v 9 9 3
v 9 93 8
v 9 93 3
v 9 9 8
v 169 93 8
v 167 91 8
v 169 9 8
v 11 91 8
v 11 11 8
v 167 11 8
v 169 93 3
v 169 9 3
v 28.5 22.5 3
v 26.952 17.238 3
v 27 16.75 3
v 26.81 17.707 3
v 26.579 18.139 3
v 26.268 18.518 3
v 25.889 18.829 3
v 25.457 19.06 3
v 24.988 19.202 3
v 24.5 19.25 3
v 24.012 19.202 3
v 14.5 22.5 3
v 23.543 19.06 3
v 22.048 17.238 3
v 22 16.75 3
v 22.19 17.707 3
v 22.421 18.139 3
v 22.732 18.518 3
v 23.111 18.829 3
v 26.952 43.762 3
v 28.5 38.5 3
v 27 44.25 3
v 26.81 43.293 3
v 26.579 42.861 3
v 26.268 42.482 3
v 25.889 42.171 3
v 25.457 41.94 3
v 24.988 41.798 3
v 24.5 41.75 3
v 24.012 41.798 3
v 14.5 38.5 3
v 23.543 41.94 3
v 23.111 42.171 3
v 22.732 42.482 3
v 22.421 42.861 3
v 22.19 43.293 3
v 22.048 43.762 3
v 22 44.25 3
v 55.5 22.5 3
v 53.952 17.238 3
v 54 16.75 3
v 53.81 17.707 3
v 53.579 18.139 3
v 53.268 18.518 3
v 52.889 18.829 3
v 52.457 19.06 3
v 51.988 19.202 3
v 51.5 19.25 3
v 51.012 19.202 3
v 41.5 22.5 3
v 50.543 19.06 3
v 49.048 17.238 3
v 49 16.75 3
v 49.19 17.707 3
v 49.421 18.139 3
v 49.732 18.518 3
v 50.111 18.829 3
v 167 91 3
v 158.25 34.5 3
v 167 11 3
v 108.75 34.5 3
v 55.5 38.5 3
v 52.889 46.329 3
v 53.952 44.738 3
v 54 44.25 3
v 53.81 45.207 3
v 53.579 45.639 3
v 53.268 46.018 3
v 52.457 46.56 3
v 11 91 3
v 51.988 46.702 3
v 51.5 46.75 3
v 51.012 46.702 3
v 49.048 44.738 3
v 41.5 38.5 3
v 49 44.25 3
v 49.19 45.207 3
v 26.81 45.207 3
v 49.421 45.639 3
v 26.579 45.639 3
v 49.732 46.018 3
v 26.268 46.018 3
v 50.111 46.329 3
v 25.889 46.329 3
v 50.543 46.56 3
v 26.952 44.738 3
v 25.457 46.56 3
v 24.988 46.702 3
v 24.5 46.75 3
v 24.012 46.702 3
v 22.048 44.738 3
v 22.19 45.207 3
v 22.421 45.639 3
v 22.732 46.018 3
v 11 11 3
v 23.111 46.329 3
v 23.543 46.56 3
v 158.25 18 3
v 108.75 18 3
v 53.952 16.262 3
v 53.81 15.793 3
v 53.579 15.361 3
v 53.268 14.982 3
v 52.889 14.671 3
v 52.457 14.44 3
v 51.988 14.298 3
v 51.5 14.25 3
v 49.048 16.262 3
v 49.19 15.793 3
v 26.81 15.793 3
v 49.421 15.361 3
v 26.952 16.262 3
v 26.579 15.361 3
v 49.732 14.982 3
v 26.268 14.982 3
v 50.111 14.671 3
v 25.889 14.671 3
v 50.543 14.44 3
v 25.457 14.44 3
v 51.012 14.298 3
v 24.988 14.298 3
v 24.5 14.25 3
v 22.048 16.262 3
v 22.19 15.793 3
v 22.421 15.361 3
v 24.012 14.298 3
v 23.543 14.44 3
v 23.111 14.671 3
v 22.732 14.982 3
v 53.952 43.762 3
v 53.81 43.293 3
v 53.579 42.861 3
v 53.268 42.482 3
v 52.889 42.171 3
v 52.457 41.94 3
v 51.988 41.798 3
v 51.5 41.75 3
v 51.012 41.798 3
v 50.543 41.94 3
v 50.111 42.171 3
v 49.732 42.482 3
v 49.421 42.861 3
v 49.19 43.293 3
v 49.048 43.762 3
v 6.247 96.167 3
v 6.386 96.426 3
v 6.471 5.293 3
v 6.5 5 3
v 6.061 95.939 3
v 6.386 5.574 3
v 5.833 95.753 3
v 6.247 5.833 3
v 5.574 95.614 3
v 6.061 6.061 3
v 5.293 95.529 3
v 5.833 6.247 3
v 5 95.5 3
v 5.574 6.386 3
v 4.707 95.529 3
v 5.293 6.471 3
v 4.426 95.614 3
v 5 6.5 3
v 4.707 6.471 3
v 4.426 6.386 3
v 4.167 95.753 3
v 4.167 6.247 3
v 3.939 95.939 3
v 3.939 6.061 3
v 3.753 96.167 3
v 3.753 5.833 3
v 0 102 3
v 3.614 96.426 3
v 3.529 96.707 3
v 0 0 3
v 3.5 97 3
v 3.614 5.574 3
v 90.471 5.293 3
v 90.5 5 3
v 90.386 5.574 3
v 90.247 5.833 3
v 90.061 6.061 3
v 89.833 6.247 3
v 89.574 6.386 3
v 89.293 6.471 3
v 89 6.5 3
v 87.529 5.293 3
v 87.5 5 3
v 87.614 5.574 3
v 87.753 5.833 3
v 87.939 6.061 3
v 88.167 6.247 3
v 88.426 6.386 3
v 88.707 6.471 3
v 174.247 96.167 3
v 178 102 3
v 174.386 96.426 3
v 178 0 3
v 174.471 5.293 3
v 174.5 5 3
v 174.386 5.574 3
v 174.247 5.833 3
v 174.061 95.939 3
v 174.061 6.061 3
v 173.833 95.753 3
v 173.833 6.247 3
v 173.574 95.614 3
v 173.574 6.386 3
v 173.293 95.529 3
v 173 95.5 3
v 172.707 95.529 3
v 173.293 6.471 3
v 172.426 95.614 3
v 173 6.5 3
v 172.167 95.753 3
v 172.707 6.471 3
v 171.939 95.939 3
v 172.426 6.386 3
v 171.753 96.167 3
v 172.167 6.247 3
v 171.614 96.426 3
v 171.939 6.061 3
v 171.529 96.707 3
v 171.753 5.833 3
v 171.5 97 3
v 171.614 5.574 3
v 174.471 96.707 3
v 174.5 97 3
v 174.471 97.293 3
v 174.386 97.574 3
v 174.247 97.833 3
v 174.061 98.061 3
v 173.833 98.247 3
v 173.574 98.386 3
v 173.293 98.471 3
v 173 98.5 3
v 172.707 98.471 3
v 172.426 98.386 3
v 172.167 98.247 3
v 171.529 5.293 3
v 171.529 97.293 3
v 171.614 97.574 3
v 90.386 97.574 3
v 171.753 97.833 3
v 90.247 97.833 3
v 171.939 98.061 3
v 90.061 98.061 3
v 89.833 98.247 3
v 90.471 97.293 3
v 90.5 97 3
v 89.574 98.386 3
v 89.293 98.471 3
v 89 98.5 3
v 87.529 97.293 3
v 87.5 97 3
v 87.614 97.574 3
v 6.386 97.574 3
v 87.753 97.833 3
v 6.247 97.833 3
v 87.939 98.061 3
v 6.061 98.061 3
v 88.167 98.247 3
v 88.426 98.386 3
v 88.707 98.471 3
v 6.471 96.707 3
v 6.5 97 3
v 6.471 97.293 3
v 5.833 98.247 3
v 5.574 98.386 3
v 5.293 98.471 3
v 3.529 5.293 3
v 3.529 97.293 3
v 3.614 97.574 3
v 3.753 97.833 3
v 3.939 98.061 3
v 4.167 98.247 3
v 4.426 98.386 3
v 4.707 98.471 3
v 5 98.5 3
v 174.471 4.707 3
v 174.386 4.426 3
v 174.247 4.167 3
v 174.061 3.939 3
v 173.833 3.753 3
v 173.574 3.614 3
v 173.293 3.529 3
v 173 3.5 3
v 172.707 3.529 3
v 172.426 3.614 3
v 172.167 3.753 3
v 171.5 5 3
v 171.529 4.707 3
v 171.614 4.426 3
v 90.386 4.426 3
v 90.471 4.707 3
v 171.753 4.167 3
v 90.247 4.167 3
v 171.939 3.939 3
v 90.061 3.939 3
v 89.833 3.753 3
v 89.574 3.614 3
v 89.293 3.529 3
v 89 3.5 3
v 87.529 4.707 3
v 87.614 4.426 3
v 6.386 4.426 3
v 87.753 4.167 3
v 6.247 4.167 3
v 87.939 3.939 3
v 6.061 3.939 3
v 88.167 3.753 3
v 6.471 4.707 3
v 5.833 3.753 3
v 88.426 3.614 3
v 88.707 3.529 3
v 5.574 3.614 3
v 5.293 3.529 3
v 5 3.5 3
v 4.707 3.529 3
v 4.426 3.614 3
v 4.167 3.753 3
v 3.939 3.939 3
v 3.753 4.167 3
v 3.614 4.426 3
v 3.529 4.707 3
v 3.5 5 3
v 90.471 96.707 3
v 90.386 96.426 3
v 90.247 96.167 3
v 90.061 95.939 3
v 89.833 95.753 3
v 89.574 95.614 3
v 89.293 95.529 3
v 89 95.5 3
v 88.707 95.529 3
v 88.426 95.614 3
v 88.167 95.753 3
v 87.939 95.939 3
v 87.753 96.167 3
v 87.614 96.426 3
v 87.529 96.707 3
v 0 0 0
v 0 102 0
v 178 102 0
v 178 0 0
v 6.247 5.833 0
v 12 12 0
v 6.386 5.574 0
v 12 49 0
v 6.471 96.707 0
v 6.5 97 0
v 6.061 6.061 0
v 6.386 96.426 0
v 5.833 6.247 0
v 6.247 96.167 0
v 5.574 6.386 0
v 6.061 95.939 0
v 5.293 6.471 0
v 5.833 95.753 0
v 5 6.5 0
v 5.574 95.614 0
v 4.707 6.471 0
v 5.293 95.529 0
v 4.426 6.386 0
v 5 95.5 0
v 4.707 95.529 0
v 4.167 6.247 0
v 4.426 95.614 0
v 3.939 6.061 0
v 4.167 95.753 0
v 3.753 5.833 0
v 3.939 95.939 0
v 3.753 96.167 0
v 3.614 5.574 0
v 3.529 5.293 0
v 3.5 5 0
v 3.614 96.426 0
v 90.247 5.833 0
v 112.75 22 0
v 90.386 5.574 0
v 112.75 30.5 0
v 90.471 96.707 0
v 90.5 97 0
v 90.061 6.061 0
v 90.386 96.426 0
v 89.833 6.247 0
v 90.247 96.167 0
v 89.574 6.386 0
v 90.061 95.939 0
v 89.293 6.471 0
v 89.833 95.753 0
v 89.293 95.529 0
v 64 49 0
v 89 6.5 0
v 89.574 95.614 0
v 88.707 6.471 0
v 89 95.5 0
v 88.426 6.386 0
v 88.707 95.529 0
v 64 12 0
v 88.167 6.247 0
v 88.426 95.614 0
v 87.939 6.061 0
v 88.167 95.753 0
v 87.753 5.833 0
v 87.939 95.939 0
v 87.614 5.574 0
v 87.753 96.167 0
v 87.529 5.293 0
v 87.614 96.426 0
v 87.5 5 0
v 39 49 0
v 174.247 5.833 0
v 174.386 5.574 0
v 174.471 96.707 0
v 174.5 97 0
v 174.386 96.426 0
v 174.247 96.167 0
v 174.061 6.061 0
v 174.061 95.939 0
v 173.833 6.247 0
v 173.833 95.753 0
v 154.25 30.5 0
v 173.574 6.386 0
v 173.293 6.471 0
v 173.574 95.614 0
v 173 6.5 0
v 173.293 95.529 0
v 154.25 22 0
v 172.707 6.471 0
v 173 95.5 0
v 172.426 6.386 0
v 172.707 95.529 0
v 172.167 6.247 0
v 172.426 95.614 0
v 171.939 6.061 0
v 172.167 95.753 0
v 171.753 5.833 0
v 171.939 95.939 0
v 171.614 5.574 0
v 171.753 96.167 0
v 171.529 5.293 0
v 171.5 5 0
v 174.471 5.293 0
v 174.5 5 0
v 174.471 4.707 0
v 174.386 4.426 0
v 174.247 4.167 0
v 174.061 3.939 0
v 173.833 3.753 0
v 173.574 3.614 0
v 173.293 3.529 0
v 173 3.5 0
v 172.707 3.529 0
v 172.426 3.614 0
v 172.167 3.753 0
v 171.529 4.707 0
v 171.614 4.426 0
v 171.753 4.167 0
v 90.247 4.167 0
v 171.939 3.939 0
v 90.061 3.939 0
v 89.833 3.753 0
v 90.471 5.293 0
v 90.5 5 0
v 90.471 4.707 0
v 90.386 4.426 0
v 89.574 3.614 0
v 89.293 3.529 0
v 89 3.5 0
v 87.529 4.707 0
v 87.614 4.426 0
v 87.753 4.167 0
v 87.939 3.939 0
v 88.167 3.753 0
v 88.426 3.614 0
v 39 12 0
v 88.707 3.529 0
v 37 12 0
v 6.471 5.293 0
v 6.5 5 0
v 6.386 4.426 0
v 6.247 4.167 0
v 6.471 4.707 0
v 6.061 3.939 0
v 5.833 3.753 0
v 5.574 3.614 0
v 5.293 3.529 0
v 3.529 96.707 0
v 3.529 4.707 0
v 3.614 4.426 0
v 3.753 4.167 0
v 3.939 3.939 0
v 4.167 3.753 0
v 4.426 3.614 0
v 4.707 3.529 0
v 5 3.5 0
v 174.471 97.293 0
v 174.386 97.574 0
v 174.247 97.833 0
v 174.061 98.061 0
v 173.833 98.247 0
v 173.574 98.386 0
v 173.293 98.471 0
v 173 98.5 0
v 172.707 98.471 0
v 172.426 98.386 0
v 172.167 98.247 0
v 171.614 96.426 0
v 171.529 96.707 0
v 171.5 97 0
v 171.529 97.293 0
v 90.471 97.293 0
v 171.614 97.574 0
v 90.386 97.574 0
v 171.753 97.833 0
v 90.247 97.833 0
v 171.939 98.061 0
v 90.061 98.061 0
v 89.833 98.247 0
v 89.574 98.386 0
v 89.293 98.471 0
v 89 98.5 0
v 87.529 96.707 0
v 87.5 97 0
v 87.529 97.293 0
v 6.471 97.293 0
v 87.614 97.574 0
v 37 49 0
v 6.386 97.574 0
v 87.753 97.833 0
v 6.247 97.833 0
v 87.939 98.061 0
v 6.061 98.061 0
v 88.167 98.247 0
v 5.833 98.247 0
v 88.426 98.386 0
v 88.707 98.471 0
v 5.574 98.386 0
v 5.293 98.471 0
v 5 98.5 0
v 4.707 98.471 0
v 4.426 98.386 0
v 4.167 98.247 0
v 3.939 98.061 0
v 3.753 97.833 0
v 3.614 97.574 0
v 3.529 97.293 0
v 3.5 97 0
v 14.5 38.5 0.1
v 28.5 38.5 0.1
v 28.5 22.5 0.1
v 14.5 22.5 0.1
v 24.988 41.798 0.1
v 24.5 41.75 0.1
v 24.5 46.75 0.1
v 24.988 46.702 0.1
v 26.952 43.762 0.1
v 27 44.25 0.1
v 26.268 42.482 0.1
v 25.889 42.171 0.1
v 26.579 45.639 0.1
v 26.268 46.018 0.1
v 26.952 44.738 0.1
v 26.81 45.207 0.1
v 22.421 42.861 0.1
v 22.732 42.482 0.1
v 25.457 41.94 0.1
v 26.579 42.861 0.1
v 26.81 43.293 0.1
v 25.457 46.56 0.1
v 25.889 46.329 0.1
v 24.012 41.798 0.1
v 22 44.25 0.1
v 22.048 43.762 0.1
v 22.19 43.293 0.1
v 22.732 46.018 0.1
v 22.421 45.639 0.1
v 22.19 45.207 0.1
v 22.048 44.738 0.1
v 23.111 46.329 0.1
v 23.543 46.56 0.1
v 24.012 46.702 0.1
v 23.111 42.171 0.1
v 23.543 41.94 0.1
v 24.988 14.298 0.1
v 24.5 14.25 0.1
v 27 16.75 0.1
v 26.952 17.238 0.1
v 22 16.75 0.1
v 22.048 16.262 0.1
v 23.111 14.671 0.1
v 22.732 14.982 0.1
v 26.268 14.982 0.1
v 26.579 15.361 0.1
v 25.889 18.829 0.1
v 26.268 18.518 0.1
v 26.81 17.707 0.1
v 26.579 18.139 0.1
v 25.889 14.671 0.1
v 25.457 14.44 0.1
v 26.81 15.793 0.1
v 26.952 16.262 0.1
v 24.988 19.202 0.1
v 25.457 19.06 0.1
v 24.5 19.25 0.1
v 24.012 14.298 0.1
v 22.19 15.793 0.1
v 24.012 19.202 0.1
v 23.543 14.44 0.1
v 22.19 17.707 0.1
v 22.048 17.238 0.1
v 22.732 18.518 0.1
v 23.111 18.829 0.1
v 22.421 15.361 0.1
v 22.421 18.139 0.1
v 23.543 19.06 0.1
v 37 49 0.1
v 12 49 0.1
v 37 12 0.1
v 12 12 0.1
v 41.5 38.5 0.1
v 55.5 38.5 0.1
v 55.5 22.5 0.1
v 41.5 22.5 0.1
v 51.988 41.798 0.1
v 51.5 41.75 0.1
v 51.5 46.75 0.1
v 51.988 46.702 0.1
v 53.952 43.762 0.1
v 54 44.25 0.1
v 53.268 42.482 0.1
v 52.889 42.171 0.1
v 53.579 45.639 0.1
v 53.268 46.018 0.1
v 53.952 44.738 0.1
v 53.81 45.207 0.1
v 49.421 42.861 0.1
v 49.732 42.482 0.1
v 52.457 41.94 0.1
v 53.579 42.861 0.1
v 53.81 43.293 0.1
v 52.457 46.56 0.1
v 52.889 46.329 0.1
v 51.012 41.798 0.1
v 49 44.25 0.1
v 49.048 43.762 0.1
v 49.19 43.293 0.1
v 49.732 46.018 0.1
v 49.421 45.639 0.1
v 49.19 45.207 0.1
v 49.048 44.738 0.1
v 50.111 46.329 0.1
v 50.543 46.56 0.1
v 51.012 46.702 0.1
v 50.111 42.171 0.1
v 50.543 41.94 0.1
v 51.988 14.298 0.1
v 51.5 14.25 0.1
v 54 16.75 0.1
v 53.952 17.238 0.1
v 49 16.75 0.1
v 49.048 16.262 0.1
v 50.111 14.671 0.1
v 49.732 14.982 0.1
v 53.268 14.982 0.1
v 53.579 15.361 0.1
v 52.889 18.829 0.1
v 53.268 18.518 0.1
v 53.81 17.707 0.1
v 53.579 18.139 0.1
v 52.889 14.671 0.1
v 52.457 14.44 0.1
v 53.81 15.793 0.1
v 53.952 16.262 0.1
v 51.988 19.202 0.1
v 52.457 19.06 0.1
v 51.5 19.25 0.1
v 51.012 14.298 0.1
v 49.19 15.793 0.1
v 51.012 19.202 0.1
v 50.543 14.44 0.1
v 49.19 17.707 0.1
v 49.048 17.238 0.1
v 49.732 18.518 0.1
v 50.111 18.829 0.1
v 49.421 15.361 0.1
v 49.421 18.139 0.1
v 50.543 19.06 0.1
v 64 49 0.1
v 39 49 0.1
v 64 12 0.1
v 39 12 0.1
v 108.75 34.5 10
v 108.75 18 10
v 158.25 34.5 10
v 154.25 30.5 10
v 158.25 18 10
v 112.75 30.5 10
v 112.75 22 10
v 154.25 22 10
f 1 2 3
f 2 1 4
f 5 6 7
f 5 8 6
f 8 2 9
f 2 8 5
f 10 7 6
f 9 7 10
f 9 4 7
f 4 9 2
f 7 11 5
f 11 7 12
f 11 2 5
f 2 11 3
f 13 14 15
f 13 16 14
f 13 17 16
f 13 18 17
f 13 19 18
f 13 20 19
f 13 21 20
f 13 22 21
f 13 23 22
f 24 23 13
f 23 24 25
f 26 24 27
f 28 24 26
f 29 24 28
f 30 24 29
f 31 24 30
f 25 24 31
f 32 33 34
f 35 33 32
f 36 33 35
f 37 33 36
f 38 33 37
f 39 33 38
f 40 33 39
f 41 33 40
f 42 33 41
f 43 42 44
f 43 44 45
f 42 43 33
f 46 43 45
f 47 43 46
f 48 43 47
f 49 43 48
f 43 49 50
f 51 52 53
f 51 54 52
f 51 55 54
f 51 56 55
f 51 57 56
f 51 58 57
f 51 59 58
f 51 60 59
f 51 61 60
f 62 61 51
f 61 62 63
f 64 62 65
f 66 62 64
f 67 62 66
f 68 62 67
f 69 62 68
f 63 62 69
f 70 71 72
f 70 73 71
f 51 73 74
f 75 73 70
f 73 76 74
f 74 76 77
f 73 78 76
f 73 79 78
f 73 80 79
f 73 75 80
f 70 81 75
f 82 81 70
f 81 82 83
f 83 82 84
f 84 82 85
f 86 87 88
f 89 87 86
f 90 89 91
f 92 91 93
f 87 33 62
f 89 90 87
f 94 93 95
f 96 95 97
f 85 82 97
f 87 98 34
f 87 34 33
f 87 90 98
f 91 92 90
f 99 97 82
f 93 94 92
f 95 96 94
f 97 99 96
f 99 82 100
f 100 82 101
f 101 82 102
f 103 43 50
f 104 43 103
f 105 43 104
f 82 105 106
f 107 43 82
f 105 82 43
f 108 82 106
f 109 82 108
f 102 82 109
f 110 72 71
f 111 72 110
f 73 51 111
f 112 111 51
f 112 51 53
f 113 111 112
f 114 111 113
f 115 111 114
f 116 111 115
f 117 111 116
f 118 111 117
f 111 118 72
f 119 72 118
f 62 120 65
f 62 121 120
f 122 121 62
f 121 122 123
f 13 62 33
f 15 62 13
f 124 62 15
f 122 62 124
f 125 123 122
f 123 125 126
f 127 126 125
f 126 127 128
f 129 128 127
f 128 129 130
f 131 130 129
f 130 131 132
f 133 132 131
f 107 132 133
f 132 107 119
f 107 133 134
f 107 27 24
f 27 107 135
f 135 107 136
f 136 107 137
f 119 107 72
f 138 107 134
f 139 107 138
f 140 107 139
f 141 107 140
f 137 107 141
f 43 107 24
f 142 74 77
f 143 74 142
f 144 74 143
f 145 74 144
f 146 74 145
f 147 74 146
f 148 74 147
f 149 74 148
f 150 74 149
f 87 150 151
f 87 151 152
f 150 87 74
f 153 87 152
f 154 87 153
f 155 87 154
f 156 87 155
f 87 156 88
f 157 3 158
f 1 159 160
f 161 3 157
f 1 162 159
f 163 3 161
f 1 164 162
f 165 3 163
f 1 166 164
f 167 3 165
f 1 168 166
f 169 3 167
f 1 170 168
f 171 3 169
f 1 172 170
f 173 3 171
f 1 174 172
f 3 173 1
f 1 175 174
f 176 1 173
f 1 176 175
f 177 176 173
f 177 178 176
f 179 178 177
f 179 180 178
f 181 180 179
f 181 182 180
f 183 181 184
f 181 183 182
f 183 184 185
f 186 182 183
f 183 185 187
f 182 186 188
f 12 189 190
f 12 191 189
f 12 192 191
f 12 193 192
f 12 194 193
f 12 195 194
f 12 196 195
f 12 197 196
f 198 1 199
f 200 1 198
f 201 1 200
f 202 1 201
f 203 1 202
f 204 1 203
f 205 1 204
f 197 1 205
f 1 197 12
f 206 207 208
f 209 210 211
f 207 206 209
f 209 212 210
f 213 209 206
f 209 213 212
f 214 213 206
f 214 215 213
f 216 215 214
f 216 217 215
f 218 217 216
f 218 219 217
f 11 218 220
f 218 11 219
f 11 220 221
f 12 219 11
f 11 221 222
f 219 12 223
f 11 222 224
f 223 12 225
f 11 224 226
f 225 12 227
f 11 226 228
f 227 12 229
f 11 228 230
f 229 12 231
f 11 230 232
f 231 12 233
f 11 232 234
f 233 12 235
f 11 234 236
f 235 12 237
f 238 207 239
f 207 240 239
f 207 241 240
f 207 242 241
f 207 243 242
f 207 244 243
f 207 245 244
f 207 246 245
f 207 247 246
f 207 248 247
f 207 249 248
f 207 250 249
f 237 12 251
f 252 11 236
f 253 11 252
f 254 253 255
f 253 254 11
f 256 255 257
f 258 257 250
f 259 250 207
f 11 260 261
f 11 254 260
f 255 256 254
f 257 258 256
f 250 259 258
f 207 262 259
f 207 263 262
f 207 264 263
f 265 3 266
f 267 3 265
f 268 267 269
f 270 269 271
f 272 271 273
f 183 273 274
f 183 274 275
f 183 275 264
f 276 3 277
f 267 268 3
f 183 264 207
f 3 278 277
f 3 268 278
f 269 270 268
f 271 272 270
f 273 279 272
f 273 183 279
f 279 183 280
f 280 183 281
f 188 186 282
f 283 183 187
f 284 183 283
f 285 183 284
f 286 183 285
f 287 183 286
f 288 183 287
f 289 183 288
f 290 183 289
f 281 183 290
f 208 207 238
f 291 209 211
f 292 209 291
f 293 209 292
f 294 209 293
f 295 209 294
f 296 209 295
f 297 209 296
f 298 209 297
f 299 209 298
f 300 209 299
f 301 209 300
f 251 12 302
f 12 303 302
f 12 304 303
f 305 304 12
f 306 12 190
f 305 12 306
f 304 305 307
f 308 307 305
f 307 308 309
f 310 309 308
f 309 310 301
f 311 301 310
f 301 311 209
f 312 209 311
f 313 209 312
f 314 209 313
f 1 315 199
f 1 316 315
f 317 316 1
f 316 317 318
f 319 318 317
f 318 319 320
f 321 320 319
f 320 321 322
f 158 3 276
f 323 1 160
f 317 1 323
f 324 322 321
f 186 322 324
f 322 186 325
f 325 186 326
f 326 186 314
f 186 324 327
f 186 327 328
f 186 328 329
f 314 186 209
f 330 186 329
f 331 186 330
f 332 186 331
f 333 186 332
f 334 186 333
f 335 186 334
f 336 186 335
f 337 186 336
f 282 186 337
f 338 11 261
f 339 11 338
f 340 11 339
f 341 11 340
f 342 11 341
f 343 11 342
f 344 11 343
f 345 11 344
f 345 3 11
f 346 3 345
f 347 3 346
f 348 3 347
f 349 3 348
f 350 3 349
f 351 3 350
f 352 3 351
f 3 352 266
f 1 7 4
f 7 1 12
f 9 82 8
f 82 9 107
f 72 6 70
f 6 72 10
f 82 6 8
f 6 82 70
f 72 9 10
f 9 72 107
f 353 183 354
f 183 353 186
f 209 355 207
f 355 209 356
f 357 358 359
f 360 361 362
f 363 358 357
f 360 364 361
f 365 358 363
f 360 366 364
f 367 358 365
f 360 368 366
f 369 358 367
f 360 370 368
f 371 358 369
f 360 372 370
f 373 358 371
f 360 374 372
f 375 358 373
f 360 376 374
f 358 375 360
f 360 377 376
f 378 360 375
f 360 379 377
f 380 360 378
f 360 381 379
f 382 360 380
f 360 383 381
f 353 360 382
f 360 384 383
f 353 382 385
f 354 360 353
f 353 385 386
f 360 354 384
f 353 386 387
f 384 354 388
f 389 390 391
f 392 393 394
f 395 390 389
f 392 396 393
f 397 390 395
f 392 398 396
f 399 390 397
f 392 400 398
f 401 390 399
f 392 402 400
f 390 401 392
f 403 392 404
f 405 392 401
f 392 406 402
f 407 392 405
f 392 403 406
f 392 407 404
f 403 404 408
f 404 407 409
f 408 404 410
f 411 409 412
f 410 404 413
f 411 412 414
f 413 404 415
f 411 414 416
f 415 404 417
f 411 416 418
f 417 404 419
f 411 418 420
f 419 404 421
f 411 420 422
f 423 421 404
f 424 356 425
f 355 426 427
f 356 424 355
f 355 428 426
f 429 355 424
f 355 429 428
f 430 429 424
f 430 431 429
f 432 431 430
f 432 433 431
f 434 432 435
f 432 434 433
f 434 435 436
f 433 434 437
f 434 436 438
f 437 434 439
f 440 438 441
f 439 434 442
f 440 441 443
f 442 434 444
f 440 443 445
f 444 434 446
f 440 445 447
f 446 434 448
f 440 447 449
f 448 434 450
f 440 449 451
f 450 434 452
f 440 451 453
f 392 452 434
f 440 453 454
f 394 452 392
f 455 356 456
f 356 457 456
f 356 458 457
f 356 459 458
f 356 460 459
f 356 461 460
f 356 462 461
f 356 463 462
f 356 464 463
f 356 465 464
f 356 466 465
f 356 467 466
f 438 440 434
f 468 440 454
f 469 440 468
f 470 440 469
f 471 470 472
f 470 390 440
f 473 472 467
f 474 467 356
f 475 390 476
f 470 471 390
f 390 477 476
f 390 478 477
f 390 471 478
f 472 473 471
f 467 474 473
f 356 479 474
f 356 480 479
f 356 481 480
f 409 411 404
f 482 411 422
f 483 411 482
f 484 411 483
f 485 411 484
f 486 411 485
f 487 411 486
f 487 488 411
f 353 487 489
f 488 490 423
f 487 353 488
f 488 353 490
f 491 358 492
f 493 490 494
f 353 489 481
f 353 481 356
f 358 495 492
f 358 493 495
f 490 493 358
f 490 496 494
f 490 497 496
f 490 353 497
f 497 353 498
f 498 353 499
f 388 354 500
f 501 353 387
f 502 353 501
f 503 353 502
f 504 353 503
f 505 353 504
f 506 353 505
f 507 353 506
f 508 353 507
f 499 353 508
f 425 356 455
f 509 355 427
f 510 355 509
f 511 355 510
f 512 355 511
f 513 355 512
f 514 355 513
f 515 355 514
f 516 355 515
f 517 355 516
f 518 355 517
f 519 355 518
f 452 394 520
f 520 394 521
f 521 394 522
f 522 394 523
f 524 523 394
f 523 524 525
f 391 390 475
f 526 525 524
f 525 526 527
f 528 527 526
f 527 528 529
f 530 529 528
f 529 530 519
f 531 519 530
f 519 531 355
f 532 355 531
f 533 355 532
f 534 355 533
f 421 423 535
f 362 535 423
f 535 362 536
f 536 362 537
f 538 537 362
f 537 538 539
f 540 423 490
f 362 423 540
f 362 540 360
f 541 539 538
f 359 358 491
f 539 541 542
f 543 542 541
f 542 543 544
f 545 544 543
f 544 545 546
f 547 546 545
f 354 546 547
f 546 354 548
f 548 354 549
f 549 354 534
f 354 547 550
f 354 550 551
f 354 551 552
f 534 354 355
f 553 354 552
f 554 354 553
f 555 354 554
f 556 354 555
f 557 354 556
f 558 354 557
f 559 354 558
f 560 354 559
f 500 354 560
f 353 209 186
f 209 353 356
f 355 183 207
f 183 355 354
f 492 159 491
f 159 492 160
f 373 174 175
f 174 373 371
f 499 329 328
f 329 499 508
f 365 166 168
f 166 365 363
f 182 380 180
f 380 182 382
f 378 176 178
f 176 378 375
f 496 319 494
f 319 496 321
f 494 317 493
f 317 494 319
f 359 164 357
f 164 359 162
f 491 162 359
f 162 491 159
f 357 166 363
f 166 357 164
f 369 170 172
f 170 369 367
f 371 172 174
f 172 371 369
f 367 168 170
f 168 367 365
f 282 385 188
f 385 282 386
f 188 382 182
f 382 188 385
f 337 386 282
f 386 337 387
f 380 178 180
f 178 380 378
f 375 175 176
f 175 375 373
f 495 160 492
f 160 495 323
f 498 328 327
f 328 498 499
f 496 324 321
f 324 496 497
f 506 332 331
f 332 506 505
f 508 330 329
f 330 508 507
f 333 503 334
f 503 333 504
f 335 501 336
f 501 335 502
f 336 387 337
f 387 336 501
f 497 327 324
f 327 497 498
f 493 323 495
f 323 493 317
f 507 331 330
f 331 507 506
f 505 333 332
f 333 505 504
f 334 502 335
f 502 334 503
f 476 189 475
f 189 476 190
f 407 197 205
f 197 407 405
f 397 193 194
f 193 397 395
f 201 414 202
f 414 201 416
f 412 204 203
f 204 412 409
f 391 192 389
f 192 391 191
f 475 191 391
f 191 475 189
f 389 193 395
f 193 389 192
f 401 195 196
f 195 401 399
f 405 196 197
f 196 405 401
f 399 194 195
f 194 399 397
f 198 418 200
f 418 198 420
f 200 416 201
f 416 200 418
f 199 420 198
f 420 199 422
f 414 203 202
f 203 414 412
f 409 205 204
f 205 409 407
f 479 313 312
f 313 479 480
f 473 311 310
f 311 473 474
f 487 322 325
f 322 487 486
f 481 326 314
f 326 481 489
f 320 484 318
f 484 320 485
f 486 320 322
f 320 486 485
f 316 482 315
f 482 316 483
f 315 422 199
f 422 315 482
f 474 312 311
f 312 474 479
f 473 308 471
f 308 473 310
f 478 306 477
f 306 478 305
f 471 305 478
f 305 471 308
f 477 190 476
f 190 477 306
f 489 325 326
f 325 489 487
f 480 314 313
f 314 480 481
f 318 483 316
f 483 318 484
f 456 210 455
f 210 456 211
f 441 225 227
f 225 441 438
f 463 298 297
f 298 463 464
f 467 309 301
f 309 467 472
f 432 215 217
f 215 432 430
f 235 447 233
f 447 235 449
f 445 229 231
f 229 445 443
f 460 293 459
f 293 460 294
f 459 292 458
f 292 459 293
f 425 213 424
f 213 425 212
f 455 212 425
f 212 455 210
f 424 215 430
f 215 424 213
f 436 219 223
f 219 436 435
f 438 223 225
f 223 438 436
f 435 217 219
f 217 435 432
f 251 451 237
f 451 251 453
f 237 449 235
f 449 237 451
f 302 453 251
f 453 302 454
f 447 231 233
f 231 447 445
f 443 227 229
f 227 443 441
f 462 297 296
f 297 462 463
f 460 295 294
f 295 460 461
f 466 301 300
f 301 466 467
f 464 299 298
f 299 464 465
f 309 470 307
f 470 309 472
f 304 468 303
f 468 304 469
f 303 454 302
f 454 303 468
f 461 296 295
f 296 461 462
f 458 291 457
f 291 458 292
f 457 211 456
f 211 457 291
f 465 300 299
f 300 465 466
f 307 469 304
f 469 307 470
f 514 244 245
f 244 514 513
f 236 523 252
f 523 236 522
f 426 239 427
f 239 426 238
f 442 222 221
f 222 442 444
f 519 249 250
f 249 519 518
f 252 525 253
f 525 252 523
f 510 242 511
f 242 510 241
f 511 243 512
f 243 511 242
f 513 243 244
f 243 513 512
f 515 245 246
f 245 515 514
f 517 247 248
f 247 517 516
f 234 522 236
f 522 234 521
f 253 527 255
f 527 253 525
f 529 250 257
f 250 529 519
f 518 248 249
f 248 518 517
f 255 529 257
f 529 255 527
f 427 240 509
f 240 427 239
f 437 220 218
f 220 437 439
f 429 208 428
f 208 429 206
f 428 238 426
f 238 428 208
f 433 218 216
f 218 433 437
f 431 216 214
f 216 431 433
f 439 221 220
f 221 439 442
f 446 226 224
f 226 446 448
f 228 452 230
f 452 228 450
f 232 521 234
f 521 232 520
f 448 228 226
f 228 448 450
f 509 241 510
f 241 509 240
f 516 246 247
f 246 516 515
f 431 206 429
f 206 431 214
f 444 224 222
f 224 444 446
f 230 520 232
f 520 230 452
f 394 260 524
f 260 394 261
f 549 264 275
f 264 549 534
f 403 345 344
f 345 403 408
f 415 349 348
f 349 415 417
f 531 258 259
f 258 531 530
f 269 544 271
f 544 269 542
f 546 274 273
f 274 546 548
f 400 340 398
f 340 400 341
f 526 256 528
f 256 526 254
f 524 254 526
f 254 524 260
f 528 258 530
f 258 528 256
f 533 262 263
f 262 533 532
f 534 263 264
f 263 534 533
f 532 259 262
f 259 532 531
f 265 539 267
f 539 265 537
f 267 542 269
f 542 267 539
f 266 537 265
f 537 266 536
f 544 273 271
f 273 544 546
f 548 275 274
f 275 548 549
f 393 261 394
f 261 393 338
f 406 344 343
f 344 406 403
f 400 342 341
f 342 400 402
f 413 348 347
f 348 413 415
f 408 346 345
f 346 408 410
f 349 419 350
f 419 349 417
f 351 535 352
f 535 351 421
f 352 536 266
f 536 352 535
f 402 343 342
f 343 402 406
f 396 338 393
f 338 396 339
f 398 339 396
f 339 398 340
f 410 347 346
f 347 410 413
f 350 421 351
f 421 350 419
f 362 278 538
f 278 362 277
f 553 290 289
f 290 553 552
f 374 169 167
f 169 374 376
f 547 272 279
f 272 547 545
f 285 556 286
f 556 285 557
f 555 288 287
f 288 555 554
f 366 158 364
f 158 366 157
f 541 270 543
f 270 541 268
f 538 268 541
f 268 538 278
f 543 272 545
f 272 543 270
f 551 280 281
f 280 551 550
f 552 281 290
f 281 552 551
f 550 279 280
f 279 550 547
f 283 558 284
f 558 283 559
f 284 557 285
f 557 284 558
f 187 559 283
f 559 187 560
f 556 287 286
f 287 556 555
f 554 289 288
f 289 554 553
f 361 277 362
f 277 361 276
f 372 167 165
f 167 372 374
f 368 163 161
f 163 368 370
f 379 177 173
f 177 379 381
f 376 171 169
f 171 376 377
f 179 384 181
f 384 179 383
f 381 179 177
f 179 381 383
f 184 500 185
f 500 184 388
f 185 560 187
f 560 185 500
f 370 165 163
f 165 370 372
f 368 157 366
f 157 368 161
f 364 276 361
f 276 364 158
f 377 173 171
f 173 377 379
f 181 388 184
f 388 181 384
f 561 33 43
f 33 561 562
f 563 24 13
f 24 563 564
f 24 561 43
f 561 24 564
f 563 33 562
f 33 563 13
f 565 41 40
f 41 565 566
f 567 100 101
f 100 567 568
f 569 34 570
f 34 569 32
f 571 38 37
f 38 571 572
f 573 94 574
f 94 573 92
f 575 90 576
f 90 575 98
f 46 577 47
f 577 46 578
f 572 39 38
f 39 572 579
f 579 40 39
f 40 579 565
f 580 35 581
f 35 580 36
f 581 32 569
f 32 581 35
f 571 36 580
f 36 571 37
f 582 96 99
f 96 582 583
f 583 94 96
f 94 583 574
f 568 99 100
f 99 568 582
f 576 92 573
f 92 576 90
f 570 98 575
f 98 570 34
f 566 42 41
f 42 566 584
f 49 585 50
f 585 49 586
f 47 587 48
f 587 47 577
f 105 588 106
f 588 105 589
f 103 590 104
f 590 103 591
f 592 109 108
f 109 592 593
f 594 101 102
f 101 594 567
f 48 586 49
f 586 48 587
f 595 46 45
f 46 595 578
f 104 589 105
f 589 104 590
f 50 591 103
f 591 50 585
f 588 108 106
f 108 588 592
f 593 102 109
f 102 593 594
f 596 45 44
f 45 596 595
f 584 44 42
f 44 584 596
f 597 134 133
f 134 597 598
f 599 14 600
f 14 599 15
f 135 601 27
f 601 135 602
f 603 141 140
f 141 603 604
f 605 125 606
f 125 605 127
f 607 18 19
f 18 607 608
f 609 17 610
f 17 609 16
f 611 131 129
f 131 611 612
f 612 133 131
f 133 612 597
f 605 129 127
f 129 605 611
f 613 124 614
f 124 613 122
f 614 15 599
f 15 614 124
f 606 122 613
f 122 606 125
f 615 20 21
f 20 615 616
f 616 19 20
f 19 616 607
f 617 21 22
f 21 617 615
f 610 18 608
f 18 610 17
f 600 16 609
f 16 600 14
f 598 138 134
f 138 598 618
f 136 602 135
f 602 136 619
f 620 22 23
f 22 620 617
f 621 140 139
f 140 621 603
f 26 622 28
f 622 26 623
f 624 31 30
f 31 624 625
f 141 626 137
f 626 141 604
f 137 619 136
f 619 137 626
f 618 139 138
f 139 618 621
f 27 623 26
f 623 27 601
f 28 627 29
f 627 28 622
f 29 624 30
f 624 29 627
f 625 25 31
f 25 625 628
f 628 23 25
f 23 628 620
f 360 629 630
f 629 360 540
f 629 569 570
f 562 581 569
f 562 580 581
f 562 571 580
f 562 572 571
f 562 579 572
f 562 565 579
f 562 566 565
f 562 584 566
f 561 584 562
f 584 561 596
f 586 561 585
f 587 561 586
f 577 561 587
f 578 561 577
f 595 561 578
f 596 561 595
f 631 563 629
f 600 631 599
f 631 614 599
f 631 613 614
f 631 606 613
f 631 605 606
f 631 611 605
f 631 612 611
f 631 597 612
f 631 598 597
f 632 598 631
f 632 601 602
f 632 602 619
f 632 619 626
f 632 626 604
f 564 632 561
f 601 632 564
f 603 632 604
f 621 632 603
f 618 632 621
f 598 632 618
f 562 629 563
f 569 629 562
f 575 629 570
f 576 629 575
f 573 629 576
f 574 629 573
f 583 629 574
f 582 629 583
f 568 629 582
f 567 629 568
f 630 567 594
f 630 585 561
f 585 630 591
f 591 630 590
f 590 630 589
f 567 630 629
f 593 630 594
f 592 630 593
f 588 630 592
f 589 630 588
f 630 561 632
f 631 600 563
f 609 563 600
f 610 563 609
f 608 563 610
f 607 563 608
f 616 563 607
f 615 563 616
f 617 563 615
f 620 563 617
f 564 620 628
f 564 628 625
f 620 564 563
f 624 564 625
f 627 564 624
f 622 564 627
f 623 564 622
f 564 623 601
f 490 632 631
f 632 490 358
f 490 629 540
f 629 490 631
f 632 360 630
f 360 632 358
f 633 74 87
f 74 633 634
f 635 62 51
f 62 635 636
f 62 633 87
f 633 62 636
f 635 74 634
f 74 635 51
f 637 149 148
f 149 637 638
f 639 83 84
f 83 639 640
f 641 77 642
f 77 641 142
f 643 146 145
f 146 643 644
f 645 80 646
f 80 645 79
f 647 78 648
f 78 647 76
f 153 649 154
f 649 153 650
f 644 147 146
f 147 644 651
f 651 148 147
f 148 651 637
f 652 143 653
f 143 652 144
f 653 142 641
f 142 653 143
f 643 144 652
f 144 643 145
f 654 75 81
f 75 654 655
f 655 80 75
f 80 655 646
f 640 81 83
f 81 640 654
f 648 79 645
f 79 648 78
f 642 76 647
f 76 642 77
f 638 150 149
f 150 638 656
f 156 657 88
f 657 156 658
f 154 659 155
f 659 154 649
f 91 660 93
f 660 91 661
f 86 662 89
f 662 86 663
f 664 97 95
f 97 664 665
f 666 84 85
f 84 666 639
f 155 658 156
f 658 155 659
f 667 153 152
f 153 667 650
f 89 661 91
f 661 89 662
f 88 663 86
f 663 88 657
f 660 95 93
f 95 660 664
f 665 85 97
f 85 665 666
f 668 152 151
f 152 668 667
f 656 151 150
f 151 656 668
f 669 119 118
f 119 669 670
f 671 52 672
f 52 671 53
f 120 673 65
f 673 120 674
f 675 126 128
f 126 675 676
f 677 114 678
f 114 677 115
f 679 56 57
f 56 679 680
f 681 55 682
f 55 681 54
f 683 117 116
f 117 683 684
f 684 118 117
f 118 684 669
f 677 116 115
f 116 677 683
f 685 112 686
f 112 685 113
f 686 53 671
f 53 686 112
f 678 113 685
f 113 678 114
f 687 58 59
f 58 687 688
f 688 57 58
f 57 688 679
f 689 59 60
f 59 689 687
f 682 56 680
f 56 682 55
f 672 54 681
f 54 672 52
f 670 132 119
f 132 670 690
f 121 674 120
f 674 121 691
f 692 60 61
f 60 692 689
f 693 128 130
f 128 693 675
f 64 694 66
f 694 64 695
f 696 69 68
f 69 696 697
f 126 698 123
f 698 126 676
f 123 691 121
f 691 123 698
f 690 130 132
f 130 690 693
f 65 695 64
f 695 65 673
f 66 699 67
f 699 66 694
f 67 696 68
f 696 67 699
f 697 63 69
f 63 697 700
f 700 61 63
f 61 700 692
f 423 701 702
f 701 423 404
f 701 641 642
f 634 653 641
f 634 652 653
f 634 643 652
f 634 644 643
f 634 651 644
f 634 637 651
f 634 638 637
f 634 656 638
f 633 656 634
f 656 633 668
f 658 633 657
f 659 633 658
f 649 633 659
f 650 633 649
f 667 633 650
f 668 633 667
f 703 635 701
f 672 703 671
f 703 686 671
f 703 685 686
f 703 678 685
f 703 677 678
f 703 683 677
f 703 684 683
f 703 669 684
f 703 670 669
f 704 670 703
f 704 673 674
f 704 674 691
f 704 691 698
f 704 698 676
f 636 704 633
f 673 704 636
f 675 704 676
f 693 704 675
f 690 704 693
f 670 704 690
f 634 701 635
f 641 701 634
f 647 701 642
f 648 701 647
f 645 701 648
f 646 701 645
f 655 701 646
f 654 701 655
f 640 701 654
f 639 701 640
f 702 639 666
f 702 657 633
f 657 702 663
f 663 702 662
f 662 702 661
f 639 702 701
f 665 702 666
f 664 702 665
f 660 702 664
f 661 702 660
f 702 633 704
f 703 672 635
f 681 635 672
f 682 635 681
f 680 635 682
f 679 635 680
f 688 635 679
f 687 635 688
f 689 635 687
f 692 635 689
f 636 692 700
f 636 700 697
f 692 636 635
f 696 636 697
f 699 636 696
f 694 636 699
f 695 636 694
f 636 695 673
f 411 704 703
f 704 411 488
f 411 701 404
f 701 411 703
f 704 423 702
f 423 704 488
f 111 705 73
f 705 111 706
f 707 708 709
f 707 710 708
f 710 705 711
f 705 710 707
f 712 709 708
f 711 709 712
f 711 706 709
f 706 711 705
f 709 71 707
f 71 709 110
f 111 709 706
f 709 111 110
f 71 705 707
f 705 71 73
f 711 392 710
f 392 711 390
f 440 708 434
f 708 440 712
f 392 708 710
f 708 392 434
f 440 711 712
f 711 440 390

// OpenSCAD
fn = 32;
inzetW = 160;
inzetH = 84;
inzetDikte = 5;
frontW = 178;
frontH = 102;
frontDikte = 3;
bd = 2;

netwerkW = 37;
netwerkH = 25;

connectorW = 41.5;
connectorH = 8.5;
connectorZ = 10;

module front() {
    schroefD = 3;
    dx = (frontW - inzetW) / 2;
    dy = (frontH - inzetH) / 2;
    dz = (frontDikte);
    gatX = 5;
    gatY = 5;
    difference() {
        union() {
            cube([frontW, frontH, frontDikte]);
            translate([dx, dy, dz])
                difference() {
                    cube([inzetW, inzetH, inzetDikte]);
                    translate([bd,bd,0])
                        cube([inzetW-bd*2, inzetH-bd*2, inzetDikte]);
                }
        }
        union() {
            translate([gatX,gatY,0])
                cylinder(d=schroefD, h=dz, $fn=fn);
            translate([frontW / 2,gatY,0])
                cylinder(d=schroefD, h=dz, $fn=fn);
            translate([frontW-(gatX),gatY,0])
                cylinder(d=schroefD, h=dz, $fn=fn);
            translate([frontW-(gatX),(frontH-(gatY)),0])
                cylinder(d=schroefD, h=dz, $fn=fn);
            translate([frontW / 2,(frontH-(gatY)),0])
                cylinder(d=schroefD, h=dz, $fn=fn);
            translate([gatX,(frontH-(gatY)),0])
                cylinder(d=schroefD, h=dz, $fn=fn);
        }
    }
}

module netwerkGat() {
    w = 16;
    h = 14;
    gatDist = 27.5;
    gatOfs = 10;
    gatD = 5;
    union() {
        cube([netwerkW, netwerkH, 0.1]);
        translate([(netwerkW-w)/2, netwerkH/2, 0]) {
            translate([0,-gatOfs,0])
                cube([w, h, frontDikte]);
            translate([w/2 - gatDist/2, 0, 0])
                cylinder(d=gatD, h=frontDikte, $fn=fn);
            translate([w/2 + gatDist/2, 0, 0])
                cylinder(d=gatD, h=frontDikte, $fn=fn);
        }
    }
}

module baanConnectorGat() {
    cube([connectorW, connectorH, connectorZ]);
}

module baanConnectorMount() {
    d = 4;
    translate([-d,-d,0])
        cube([connectorW+d*2, connectorH+d*2, connectorZ]);
}

module all() {
    netwerkX1 = ((frontW - inzetW) / 2) + bd + 1;
    netwerkX2 = netwerkX1 + netwerkH + 2;
    netwerkY = ((frontH - inzetH) / 2) + bd + 1;
    connectorX = 3*(frontW / 4) - (connectorW/2);
    connectorY = ((frontH - inzetH) / 2) + bd + 1 + 10;
    difference() {
        union() {
            front();
            translate([connectorX, connectorY, 0])
                baanConnectorMount();
        }
        translate([netwerkX1, netwerkY + netwerkW, 0])
            rotate([0,0,-90])
                netwerkGat();
        translate([netwerkX2, netwerkY + netwerkW, 0])
            rotate([0,0,-90])
                netwerkGat();
        translate([connectorX, connectorY, 0])
            baanConnectorGat();
    }
}

//netwerkGat();
all();
